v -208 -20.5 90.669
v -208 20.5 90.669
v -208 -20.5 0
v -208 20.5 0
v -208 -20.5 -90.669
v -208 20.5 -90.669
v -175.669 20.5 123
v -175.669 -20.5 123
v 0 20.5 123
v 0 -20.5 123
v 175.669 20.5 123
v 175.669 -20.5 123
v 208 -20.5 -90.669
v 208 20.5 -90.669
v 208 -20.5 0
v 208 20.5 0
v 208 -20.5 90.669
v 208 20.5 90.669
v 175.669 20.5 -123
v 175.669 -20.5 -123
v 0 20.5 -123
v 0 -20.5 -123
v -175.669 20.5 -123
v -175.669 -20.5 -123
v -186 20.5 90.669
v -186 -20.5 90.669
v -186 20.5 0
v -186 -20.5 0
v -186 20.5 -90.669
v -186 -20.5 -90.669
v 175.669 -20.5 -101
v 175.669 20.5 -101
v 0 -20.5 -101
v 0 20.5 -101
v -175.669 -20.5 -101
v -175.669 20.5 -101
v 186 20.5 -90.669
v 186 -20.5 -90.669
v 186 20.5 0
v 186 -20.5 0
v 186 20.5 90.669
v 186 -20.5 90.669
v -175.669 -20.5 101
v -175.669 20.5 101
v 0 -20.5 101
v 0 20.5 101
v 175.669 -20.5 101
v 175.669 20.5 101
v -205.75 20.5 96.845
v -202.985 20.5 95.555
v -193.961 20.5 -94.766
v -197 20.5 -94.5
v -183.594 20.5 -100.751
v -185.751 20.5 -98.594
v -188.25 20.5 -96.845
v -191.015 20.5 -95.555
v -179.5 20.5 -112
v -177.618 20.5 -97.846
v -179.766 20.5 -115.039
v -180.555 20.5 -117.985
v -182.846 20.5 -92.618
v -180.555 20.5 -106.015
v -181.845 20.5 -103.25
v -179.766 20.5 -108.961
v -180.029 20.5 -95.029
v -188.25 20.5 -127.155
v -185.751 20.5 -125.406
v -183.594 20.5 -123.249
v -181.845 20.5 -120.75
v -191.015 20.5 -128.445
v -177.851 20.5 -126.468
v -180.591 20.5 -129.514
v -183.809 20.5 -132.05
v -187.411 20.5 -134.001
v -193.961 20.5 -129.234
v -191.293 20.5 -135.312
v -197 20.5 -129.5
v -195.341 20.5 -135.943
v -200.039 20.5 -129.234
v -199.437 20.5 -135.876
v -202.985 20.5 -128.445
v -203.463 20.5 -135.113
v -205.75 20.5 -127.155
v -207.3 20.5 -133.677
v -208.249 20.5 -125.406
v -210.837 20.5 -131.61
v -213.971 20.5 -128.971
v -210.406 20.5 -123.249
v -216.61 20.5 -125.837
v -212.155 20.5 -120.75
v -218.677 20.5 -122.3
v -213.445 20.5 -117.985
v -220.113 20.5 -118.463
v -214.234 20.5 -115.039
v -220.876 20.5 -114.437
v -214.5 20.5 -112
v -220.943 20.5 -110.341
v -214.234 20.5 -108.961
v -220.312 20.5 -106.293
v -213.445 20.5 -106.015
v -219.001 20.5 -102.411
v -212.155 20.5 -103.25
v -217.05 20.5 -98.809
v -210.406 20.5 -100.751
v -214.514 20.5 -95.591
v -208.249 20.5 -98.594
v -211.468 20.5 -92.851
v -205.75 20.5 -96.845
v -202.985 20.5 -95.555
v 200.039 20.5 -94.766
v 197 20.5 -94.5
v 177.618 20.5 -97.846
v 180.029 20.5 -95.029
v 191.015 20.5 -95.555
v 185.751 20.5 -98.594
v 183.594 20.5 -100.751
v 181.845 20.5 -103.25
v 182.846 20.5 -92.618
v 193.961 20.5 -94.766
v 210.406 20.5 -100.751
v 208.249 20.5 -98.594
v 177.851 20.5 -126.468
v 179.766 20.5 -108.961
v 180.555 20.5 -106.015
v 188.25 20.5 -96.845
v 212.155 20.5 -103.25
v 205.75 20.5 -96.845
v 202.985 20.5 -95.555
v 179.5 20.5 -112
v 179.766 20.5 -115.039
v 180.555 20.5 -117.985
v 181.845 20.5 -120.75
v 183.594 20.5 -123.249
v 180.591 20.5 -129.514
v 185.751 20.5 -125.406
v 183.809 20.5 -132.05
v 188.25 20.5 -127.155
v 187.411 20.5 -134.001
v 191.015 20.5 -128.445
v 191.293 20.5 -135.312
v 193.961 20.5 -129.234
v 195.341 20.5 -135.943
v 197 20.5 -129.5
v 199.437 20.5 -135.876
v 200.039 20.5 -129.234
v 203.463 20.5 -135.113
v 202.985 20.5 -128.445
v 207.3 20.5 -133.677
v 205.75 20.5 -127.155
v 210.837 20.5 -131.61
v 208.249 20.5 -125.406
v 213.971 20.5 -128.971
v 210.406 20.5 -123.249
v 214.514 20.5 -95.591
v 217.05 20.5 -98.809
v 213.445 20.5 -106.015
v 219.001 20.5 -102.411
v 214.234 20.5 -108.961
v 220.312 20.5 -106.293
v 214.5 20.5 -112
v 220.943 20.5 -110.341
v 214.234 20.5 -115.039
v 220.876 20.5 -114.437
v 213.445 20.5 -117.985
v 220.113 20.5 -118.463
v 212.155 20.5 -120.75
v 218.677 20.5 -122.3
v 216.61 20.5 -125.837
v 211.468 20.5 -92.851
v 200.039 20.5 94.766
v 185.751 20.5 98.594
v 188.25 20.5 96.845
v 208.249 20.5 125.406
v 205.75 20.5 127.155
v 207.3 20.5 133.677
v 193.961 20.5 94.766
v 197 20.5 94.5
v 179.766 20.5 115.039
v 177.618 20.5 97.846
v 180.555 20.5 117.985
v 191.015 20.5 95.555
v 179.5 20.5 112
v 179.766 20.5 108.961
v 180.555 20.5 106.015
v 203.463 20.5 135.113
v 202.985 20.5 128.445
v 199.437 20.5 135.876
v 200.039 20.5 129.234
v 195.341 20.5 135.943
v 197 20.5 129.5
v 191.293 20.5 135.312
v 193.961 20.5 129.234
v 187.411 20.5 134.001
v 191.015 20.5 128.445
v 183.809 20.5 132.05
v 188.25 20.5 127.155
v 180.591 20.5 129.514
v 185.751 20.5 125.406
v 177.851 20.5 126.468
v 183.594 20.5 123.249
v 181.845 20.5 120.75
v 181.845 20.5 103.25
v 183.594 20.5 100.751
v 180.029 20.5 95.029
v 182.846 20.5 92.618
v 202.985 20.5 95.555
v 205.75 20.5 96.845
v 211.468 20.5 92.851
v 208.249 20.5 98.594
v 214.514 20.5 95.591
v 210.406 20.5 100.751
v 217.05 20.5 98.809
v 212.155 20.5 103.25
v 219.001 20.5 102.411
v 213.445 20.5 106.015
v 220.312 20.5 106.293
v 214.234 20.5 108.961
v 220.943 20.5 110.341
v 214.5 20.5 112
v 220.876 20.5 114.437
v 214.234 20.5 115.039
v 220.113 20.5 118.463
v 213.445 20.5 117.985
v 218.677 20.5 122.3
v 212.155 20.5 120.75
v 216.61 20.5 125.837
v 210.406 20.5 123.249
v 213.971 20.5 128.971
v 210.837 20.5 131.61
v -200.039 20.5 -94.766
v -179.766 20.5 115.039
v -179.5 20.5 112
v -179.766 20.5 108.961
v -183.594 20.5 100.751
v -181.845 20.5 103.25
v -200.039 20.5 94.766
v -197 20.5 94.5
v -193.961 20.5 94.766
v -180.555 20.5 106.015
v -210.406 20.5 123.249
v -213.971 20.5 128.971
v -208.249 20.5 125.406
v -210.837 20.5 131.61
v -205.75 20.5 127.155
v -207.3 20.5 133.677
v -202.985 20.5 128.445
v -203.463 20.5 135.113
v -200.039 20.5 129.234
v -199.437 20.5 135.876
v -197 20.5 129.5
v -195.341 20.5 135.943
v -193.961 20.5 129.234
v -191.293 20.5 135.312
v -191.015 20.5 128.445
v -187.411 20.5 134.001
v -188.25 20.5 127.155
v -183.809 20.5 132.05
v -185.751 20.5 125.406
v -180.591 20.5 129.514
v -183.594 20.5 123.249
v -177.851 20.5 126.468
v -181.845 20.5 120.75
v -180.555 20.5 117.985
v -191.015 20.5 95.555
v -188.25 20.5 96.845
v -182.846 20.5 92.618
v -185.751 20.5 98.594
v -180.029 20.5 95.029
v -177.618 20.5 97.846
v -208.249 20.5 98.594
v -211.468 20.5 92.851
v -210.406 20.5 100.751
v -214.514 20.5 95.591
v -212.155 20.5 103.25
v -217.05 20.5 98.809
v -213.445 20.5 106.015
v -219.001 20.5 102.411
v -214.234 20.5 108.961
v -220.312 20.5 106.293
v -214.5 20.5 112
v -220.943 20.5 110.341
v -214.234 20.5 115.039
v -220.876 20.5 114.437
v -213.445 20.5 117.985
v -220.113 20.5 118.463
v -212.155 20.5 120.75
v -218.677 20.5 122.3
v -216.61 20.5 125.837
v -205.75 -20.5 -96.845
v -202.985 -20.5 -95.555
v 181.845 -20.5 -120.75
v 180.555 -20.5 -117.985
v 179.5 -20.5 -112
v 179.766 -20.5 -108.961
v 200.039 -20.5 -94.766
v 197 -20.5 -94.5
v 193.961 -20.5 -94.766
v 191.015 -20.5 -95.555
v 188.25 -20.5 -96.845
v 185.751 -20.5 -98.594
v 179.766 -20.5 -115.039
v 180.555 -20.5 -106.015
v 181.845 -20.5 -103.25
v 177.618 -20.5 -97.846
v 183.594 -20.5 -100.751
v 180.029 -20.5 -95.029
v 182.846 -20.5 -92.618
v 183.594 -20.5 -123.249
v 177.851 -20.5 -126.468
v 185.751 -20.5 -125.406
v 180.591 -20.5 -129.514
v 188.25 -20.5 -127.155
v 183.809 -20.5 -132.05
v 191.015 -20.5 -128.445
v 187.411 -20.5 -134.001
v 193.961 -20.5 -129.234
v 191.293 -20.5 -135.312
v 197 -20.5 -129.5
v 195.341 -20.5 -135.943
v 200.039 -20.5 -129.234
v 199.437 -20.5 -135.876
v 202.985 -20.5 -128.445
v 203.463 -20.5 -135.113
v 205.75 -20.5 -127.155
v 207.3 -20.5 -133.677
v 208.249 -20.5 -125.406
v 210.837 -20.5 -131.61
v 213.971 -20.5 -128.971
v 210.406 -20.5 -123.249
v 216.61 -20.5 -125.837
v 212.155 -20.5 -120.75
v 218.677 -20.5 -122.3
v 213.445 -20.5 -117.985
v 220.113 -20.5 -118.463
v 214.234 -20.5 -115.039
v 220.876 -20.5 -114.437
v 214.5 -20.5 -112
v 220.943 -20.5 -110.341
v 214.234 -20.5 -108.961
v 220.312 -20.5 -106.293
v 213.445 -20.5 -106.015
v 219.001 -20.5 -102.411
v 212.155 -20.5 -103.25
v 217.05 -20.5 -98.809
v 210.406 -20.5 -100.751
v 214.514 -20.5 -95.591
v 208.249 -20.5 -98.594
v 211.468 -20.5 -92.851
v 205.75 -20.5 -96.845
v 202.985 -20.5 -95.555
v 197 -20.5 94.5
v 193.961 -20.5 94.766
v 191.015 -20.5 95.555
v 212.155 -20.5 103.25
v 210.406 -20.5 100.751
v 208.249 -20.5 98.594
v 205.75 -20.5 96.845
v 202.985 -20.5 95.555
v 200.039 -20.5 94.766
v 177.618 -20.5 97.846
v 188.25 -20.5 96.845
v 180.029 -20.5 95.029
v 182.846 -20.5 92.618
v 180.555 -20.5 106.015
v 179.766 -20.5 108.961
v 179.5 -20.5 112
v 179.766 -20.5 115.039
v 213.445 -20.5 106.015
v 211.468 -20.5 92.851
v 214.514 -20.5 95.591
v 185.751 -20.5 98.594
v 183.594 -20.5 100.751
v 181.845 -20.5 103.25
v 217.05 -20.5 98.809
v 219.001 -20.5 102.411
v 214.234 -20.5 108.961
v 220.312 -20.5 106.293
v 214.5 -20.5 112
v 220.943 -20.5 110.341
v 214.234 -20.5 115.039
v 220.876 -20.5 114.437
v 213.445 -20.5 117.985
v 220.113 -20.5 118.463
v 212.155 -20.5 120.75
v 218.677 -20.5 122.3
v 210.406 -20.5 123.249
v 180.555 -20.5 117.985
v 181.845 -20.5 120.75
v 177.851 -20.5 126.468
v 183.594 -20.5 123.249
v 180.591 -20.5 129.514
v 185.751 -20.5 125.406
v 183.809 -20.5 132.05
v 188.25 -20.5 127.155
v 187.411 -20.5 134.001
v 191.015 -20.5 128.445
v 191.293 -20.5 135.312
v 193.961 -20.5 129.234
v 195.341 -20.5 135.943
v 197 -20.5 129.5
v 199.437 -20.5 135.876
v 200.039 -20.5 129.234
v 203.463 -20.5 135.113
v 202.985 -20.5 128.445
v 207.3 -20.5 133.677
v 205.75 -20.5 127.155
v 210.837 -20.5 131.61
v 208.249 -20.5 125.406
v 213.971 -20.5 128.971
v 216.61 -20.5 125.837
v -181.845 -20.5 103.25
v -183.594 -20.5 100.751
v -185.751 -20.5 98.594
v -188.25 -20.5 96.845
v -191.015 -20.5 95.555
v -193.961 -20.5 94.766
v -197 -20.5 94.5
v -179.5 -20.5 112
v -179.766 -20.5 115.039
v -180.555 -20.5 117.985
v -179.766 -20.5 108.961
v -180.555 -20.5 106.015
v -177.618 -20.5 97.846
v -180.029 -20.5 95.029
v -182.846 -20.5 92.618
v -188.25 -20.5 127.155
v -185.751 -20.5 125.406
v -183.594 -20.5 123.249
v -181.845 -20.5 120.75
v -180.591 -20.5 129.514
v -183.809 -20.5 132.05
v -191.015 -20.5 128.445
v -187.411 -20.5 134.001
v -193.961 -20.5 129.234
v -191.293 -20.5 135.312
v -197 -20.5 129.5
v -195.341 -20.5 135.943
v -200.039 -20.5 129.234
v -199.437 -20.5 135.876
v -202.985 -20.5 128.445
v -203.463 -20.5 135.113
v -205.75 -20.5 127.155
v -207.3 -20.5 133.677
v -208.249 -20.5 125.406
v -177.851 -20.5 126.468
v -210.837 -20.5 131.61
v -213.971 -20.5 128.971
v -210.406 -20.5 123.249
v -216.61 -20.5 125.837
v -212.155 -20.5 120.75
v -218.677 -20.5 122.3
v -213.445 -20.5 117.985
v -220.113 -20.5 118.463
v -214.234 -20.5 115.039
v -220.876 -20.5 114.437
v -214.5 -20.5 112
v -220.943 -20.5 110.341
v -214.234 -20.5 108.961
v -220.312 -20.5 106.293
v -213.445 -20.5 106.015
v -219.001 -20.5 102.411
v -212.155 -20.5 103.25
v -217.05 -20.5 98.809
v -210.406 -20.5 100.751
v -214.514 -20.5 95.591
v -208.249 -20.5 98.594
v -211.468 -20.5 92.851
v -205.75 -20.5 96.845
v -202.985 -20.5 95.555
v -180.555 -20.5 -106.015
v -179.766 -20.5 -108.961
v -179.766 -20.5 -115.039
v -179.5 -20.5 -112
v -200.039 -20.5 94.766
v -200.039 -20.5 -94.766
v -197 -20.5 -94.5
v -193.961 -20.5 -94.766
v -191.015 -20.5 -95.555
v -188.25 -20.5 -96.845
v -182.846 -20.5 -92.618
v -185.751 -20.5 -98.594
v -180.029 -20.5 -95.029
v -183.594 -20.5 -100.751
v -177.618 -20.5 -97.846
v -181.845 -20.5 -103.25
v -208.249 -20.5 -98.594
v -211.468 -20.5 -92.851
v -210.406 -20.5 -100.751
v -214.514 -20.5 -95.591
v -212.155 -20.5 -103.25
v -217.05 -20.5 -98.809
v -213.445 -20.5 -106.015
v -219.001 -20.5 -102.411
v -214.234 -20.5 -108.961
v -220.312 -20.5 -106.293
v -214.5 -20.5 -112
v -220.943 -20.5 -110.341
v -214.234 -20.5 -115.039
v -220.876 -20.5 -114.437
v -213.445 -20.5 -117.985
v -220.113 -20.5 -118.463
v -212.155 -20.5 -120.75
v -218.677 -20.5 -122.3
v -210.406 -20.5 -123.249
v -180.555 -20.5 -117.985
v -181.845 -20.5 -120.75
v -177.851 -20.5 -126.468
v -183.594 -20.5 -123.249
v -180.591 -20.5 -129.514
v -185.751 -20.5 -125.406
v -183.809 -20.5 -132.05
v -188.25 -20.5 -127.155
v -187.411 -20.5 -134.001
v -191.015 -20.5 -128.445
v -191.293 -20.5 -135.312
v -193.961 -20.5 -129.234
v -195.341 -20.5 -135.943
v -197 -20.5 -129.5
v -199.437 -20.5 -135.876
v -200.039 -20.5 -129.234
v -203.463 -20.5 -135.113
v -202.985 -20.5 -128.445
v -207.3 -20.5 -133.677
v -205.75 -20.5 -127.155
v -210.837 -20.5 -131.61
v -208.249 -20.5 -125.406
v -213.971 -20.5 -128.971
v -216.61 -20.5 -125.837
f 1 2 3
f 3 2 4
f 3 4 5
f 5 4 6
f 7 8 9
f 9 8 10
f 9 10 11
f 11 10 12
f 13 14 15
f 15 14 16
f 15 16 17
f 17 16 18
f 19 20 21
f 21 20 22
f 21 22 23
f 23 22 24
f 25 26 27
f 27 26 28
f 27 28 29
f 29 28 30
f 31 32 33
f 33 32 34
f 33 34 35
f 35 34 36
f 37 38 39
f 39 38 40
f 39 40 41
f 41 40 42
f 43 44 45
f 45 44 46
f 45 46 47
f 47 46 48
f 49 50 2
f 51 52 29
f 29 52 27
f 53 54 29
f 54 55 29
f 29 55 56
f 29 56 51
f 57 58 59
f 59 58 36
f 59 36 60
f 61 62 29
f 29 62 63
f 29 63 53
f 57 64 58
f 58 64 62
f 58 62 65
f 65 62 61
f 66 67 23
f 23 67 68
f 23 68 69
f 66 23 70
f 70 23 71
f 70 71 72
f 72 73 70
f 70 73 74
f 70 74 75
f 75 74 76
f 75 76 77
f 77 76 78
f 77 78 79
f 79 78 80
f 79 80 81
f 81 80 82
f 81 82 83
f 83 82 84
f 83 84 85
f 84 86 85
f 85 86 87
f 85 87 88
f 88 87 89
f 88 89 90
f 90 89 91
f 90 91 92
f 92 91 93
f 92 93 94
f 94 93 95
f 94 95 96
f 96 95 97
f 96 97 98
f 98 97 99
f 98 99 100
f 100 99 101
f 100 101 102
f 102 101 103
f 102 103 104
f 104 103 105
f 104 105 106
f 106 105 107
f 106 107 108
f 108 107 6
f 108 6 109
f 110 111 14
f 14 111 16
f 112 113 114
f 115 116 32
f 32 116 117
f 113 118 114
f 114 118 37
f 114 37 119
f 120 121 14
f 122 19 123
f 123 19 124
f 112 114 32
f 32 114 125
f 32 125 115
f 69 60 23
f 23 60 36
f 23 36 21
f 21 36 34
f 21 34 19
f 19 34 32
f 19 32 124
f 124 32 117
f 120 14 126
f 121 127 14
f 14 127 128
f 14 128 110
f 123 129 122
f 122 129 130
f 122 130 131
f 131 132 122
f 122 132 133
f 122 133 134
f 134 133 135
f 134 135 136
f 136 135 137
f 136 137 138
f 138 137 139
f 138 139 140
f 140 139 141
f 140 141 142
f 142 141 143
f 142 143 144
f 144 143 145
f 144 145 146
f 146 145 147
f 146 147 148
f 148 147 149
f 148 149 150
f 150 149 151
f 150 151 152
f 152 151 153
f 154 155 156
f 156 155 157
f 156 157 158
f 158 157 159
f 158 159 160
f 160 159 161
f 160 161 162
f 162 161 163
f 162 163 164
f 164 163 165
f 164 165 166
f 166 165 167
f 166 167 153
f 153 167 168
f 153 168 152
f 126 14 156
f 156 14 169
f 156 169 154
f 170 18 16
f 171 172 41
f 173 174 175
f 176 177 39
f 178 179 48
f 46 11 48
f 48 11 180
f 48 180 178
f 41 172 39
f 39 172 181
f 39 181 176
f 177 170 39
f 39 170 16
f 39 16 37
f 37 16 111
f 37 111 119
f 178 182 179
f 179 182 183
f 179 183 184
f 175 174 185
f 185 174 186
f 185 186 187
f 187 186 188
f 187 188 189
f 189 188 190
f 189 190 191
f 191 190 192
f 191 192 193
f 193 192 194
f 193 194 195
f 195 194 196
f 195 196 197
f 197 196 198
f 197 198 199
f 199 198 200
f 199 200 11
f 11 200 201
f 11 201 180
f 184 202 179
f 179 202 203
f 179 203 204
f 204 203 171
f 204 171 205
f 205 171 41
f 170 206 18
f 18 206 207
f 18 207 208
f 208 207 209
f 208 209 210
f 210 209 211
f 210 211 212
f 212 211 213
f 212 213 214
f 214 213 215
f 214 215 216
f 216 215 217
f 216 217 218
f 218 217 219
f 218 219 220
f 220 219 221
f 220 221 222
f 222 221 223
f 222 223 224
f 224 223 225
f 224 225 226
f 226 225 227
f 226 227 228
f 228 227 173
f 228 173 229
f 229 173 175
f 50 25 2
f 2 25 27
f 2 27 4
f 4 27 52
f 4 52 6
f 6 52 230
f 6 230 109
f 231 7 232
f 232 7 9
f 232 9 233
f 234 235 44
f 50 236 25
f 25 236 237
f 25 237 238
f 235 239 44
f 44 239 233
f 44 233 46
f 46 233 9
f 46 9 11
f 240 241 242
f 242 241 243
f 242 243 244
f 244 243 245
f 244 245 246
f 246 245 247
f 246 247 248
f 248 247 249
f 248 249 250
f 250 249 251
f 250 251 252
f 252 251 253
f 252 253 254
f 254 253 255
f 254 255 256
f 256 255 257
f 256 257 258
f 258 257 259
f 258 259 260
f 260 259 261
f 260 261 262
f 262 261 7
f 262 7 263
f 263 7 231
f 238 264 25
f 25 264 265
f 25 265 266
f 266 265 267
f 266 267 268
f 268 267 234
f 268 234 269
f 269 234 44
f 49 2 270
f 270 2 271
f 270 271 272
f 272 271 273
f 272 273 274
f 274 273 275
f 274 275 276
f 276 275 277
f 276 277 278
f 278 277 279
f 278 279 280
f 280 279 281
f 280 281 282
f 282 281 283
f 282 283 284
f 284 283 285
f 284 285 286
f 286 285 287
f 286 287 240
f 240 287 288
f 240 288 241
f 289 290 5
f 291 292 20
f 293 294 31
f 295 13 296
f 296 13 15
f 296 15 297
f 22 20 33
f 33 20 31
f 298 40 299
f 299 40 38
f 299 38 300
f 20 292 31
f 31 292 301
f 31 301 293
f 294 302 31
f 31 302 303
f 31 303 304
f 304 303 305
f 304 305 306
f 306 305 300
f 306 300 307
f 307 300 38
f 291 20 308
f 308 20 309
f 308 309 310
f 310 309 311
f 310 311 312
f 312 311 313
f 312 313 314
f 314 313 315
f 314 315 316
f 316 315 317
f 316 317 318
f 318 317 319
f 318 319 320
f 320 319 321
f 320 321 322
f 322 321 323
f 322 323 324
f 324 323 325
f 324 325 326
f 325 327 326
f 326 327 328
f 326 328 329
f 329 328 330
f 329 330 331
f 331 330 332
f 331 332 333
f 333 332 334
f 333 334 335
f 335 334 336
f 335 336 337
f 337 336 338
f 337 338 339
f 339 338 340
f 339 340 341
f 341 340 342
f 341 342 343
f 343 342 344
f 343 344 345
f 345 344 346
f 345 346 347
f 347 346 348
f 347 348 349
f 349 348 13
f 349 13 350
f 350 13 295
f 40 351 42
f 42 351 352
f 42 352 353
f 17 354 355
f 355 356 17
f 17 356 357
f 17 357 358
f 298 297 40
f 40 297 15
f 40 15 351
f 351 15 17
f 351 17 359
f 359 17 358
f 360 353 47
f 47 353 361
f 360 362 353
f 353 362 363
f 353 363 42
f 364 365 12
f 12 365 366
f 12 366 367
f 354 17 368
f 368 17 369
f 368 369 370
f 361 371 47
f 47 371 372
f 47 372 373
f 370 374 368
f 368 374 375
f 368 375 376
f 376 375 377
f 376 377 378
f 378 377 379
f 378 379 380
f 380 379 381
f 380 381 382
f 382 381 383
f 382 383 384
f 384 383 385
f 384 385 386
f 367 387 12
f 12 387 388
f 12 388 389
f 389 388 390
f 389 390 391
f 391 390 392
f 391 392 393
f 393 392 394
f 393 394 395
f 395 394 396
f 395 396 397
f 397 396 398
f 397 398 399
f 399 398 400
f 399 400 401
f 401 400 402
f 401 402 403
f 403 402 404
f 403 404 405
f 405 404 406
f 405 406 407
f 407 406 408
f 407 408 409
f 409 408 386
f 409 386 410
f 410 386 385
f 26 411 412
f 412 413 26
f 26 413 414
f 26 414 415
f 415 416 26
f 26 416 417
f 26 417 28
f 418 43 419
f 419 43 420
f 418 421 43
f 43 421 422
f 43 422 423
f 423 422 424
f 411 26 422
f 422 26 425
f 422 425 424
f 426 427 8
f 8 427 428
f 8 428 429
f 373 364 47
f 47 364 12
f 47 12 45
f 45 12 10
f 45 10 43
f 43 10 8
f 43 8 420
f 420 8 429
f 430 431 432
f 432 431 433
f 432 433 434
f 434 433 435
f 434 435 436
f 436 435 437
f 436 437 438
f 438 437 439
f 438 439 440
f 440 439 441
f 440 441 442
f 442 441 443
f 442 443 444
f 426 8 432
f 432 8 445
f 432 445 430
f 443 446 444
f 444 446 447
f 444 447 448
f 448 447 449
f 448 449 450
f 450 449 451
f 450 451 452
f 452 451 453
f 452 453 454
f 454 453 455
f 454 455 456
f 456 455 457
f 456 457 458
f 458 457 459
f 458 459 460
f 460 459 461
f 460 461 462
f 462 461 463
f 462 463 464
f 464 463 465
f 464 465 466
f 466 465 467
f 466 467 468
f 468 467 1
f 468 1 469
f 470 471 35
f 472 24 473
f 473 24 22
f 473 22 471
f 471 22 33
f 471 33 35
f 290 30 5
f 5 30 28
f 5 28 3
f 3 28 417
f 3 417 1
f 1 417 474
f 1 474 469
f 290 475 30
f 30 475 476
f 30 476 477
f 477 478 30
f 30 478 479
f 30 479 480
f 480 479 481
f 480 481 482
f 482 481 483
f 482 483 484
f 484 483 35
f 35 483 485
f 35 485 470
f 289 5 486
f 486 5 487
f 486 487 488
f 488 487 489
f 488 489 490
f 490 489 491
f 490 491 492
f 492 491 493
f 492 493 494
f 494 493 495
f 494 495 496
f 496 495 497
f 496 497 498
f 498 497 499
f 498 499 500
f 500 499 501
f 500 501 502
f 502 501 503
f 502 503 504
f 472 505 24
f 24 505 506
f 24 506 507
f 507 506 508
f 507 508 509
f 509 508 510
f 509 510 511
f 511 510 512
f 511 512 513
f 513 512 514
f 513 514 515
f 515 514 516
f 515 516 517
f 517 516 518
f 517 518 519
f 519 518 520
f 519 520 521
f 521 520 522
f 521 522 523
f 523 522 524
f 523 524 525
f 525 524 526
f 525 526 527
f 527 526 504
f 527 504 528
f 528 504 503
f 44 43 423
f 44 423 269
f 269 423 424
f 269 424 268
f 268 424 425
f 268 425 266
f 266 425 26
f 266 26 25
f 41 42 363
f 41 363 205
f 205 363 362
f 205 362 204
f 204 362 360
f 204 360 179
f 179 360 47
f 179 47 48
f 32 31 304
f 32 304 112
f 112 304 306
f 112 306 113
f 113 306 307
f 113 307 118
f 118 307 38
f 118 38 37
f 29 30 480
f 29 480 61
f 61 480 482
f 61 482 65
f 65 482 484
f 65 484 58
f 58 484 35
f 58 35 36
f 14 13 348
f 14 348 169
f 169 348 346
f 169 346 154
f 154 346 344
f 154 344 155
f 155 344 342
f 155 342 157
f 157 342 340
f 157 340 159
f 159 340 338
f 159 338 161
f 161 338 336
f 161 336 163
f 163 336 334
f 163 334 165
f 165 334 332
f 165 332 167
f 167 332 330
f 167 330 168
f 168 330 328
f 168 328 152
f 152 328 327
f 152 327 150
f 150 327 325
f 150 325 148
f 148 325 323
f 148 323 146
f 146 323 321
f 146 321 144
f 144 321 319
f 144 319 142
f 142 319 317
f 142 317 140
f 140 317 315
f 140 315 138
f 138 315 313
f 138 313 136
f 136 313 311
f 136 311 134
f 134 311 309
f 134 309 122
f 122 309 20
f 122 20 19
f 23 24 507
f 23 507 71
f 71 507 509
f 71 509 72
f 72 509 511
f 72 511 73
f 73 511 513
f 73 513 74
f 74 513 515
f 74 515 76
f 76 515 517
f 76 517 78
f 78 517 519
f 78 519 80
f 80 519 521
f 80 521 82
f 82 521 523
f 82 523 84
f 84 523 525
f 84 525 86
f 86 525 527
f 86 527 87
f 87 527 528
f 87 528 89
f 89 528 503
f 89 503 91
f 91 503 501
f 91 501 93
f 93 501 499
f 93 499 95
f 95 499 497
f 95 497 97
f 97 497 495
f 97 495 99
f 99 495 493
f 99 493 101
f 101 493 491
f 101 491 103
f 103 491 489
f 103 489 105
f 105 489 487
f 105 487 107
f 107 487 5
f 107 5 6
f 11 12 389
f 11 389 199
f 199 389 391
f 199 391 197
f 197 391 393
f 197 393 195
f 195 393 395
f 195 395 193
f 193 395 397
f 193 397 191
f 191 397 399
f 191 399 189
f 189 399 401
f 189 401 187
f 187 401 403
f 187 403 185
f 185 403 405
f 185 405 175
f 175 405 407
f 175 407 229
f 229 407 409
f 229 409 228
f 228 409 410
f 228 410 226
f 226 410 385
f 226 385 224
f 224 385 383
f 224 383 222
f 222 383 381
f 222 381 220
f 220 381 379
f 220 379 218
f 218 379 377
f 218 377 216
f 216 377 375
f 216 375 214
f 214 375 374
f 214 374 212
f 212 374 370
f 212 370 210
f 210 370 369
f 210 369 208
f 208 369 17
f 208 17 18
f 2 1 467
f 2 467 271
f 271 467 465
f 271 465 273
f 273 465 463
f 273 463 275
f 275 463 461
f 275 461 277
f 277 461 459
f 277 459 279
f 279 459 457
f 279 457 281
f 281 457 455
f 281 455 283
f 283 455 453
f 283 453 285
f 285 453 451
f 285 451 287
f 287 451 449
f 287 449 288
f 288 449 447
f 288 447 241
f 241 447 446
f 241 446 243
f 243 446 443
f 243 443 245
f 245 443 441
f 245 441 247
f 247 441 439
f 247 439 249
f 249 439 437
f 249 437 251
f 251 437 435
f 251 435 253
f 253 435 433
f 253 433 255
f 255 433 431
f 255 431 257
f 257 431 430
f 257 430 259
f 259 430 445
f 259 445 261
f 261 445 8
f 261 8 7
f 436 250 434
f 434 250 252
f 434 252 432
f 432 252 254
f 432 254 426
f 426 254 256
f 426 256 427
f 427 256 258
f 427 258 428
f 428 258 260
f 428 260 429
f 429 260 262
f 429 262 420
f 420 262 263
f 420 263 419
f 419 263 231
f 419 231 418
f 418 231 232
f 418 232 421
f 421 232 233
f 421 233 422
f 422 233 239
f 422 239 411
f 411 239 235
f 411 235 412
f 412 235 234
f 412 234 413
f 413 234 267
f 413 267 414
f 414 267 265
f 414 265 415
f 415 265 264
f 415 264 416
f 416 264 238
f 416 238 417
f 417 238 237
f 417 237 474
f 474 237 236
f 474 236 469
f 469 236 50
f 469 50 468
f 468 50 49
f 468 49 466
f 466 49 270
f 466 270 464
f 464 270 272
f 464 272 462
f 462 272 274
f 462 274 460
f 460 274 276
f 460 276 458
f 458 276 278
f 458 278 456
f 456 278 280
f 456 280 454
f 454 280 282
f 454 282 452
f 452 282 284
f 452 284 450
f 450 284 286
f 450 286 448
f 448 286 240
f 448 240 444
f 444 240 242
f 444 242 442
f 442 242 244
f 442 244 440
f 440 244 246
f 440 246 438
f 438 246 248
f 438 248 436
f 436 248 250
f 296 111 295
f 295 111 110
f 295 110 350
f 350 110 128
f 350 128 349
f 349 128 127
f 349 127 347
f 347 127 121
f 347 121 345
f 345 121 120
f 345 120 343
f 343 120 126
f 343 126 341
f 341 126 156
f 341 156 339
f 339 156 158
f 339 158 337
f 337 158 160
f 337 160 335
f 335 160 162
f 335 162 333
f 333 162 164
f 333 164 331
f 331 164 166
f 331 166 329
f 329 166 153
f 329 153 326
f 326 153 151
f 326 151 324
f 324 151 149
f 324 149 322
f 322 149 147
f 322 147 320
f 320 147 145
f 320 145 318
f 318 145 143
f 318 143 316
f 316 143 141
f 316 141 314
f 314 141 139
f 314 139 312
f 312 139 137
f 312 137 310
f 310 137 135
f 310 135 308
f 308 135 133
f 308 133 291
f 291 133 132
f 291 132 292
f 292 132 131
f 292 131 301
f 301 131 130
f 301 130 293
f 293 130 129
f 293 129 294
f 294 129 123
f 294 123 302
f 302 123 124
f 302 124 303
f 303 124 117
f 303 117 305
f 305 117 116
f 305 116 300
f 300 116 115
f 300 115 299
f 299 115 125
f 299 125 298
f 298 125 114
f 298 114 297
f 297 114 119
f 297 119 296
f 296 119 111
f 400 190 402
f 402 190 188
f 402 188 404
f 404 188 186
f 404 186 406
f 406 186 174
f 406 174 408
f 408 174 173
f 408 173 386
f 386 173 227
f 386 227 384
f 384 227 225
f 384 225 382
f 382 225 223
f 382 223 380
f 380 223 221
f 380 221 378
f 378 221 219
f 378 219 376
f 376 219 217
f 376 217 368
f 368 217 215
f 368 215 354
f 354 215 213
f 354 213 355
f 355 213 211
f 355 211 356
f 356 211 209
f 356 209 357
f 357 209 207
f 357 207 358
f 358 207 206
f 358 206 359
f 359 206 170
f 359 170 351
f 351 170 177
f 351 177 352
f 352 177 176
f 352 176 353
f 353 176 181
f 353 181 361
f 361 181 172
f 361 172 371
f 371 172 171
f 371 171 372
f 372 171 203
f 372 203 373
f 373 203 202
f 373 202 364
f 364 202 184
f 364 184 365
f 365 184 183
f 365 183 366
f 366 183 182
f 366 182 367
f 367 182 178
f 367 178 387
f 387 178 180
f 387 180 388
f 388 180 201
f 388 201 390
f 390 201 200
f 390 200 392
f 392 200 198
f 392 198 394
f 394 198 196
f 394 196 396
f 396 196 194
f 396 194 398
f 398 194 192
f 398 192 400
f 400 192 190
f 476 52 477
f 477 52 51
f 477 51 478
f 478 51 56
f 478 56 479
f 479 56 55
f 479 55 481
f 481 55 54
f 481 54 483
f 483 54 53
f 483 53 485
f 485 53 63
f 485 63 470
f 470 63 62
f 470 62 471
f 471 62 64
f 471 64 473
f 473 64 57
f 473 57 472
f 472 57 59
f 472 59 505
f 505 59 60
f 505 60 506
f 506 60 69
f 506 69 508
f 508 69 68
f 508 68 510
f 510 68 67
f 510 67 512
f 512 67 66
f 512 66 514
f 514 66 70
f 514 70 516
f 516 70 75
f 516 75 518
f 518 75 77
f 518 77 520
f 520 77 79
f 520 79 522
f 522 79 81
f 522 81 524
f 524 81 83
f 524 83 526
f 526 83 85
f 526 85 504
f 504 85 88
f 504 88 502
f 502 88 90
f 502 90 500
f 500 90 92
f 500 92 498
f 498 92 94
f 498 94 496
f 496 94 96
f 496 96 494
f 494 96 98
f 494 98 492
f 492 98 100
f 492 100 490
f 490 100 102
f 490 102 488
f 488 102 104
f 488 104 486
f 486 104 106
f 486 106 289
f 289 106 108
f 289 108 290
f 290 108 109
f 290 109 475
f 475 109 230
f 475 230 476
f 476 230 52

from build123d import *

# Parameters (mm, degrees)
SKETCH1_W           = 416
SKETCH1_H           = 246
BOSS_EXTRUDE1_DEPTH = 20.5
SKETCH2_W           = 372
SKETCH2_H           = 202
CUT_EXTRUDE1_DEPTH  = 30
SKETCH3_R           = 24
BOSS_EXTRUDE2_DEPTH = 20.5
SKETCH4_R           = 17.5
CUT_EXTRUDE2_DEPTH  = 30


with BuildPart() as part:
    # Sketch1 → Boss-Extrude1 (new, symmetric)
    with BuildSketch(Plane(origin=(0, 0, 0), x_dir=(1, 0, 0), z_dir=(0, 1, 0))):
        Rectangle(SKETCH1_W, SKETCH1_H)
    extrude(amount=BOSS_EXTRUDE1_DEPTH, both=True)

    # Sketch2 → Cut-Extrude1 (cut, symmetric)
    with BuildSketch(Plane(origin=(0, 0, 0), x_dir=(1, 0, 0), z_dir=(0, 1, 0))):
        Rectangle(SKETCH2_W, SKETCH2_H)
    extrude(amount=CUT_EXTRUDE1_DEPTH, both=True, mode=Mode.SUBTRACT)

    # Sketch3 → Boss-Extrude2 (add, symmetric)
    with BuildSketch(Plane(origin=(0, 0, 0), x_dir=(1, 0, 0), z_dir=(0, 1, 0))):
        with Locations((-197, -112)):
            Circle(SKETCH3_R)
        with Locations((-197, 112)):
            Circle(SKETCH3_R)
        with Locations((197, -112)):
            Circle(SKETCH3_R)
        with Locations((197, 112)):
            Circle(SKETCH3_R)
    extrude(amount=BOSS_EXTRUDE2_DEPTH, both=True)

    # Sketch4 → Cut-Extrude2 (cut, symmetric)
    with BuildSketch(Plane(origin=(0, 0, 0), x_dir=(1, 0, 0), z_dir=(0, 1, 0))):
        with Locations(Location((-197, -112, 0), (0, 0, 270))):
            Circle(SKETCH4_R)
        with Locations(Location((-197, 112, 0), (0, 0, 270))):
            Circle(SKETCH4_R)
        with Locations(Location((197, -112, 0), (0, 0, 270))):
            Circle(SKETCH4_R)
        with Locations(Location((197, 112, 0), (0, 0, 270))):
            Circle(SKETCH4_R)
    extrude(amount=CUT_EXTRUDE2_DEPTH, both=True, mode=Mode.SUBTRACT)


solid = part.part
